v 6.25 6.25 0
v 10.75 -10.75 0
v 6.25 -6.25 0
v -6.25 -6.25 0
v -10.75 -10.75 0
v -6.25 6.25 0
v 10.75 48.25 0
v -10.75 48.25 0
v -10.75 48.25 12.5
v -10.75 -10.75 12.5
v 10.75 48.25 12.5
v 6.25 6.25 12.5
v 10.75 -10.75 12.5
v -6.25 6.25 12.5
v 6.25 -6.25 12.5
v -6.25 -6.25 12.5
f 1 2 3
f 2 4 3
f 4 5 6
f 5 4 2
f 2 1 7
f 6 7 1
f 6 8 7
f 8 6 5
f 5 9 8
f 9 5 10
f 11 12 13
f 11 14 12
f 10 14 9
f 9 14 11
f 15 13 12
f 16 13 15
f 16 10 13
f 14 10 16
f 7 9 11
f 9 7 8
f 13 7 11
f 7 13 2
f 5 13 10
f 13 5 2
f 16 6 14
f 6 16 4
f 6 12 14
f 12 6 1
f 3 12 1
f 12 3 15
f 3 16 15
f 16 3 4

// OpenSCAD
bu = 12.5;
bumper_thick = 4.5;

difference() {
  linear_extrude(bu) {
    translate([-bu/2-bumper_thick,-bu/2-bumper_thick])
      square([bu+2*bumper_thick, 4*bu+2*bumper_thick]);
  }
  linear_extrude(bu) {
    square(bu,center=true);
  }
}
